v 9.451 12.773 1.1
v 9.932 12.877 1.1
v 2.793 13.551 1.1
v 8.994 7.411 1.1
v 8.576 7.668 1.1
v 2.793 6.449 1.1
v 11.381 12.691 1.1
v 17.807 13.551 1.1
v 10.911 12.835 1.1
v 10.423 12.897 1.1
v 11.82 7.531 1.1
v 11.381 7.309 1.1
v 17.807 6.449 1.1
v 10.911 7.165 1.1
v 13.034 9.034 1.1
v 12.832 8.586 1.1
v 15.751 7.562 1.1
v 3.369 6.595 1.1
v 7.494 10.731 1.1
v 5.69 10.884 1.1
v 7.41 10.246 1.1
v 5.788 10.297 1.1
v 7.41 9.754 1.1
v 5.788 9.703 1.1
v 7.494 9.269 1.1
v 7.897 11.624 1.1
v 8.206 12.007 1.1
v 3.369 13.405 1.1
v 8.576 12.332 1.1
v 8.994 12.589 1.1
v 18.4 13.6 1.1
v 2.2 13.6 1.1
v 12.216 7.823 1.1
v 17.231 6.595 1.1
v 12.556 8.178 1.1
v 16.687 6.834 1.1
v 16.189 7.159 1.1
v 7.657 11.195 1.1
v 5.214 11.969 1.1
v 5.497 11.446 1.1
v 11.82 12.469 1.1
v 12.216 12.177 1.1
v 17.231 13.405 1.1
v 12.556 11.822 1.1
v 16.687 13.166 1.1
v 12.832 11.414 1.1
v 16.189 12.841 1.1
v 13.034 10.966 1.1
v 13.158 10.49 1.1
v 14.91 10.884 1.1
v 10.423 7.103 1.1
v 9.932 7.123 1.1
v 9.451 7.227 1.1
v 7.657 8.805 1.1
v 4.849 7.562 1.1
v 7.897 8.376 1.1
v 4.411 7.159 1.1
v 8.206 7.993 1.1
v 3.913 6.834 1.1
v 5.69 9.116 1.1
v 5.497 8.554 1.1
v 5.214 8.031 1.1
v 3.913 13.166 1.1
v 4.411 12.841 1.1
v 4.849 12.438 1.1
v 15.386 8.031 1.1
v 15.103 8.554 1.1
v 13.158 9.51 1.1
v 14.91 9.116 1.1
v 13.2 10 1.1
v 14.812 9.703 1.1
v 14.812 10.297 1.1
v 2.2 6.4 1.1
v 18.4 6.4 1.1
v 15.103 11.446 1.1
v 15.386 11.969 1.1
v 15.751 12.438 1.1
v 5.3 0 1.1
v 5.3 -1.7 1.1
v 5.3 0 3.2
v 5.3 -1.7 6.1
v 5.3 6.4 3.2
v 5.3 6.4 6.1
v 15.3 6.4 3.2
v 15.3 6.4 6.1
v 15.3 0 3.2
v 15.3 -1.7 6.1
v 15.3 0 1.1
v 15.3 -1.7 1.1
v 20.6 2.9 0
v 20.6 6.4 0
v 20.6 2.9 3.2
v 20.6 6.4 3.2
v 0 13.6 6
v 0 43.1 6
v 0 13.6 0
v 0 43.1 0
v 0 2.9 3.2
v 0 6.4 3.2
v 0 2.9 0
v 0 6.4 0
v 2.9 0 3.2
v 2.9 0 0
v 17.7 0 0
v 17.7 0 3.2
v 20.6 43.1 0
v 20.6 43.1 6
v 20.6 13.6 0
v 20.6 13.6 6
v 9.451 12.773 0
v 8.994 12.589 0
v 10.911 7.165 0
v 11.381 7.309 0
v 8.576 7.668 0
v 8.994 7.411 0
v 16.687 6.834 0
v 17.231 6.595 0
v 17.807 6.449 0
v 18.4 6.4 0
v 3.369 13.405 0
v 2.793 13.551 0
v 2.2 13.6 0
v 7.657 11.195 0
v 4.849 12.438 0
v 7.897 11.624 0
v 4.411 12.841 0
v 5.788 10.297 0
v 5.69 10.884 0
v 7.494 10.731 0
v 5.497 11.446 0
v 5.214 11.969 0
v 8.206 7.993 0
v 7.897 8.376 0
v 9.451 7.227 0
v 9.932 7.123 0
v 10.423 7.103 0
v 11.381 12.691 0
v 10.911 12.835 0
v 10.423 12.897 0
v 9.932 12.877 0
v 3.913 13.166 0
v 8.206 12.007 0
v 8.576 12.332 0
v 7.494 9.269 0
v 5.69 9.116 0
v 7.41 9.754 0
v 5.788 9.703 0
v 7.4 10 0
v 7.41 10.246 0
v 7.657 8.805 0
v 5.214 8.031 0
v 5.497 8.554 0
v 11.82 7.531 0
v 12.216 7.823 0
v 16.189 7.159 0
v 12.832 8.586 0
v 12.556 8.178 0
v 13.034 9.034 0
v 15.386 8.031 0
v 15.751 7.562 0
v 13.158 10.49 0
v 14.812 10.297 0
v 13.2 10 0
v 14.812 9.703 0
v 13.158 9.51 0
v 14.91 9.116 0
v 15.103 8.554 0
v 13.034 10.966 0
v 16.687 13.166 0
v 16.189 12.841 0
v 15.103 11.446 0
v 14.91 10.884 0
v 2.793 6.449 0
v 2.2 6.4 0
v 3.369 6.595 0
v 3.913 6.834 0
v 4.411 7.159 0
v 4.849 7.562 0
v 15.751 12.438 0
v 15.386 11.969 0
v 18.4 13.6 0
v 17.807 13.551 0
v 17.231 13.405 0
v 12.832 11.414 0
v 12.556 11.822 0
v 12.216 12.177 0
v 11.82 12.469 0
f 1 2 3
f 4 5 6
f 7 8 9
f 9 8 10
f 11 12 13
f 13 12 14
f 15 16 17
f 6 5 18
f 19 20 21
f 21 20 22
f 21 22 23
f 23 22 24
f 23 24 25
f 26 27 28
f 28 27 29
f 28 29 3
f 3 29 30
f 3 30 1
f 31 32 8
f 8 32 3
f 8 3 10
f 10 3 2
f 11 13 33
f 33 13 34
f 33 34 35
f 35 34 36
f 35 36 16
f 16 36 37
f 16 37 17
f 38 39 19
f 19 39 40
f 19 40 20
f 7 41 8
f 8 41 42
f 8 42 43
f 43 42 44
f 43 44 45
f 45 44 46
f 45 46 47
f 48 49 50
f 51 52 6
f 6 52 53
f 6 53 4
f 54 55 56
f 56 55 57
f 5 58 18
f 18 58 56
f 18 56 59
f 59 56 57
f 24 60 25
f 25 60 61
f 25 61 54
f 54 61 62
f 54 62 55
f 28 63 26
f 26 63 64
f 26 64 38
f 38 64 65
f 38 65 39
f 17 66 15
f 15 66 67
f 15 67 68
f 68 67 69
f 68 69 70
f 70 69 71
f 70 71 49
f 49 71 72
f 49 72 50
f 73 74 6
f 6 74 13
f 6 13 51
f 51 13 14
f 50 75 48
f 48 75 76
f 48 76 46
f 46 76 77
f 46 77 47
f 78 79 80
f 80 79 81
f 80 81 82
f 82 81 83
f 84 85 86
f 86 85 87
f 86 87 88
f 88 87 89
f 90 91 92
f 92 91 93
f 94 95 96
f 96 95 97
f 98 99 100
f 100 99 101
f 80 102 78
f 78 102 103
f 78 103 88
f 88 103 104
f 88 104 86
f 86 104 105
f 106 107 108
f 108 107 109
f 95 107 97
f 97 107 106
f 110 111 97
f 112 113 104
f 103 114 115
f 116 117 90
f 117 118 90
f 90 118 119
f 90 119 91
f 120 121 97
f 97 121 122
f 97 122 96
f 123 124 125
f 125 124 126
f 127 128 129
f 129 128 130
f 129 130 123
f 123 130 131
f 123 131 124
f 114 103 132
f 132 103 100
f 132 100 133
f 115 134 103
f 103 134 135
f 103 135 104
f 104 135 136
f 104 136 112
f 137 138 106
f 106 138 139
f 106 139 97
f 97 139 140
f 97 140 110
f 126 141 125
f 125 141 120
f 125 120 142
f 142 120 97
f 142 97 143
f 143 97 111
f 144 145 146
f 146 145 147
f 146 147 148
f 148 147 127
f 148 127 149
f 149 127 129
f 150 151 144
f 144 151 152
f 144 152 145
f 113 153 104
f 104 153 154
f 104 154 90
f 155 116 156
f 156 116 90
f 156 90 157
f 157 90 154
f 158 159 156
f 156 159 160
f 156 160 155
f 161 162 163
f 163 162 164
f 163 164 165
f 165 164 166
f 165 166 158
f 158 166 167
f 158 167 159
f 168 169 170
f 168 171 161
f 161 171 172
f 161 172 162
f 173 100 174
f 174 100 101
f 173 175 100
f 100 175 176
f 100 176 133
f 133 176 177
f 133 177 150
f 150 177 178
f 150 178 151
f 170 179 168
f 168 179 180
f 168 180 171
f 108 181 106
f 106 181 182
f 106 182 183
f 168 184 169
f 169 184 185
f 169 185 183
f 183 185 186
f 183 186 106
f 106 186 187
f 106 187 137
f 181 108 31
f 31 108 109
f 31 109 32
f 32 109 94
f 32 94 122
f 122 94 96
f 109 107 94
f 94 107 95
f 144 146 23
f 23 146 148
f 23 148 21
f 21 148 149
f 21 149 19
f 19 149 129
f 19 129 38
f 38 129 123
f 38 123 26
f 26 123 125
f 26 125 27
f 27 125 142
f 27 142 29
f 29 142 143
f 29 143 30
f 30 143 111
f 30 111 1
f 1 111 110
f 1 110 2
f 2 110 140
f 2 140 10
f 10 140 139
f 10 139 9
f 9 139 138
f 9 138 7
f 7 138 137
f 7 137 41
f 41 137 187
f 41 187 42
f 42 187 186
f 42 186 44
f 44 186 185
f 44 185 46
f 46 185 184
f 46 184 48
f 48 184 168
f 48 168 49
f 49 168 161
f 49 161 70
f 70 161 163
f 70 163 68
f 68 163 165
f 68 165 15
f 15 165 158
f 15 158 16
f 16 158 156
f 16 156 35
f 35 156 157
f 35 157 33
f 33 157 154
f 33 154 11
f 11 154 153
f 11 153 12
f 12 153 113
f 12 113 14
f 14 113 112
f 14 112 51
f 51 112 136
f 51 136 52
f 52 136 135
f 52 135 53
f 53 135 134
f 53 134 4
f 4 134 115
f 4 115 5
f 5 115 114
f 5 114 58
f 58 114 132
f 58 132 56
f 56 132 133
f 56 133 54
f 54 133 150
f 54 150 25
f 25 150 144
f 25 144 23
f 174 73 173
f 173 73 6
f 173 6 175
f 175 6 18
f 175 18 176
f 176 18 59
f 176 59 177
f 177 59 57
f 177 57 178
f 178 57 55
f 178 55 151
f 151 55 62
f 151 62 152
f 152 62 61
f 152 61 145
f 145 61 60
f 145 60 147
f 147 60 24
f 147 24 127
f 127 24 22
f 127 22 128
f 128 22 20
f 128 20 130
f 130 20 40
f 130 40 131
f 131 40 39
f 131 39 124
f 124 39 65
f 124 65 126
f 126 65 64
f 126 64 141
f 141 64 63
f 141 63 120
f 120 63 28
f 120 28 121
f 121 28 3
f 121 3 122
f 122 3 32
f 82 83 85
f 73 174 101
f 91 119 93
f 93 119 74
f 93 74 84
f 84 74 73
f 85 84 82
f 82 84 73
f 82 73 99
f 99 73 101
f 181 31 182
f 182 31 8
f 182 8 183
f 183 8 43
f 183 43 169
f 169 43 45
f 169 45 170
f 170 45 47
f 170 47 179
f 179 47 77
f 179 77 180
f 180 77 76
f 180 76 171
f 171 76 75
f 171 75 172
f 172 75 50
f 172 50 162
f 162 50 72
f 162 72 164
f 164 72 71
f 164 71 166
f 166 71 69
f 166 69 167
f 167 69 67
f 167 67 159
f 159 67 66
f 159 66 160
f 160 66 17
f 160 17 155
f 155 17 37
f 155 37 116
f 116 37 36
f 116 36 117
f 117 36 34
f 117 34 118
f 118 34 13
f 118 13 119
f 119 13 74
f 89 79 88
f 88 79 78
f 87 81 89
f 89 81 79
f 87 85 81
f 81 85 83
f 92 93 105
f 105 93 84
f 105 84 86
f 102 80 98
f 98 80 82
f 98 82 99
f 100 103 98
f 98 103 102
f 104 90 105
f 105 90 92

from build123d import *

# Parameters (mm, degrees)
SKETCH1_W           = 20.6
SKETCH1_H           = 43.1
BOSS_EXTRUDE1_DEPTH = 1.1
SKETCH2_W           = 20.6
SKETCH2_H           = 29.5
BOSS_EXTRUDE2_DEPTH = 4.9
SKETCH3_R           = 2.9
CUT_EXTRUDE1_DEPTH  = 4.9
SKETCH4_W           = 10
SKETCH4_H           = 8.1
BOSS_EXTRUDE3_DEPTH = 5
SKETCH5_W           = 20.6
SKETCH5_H           = 6.4
BOSS_EXTRUDE4_DEPTH = 2.1
CUT_EXTRUDE2_DEPTH  = 48.877029983


with BuildPart() as part:
    # Sketch1 → Boss-Extrude1 (new body)
    with BuildSketch(Plane.XY):
        with Locations((10.3, 21.55)):
            Rectangle(SKETCH1_W, SKETCH1_H)
    extrude(amount=BOSS_EXTRUDE1_DEPTH)

    # Sketch2 → Boss-Extrude2 (add)
    with BuildSketch(Plane.XY.offset(1.1)):
        with Locations((10.3, 28.35)):
            Rectangle(SKETCH2_W, SKETCH2_H)
    extrude(amount=BOSS_EXTRUDE2_DEPTH)

    # Sketch3 → Cut-Extrude1 (cut)
    with BuildSketch(Plane.XY.offset(1.1)):
        with Locations((10.3, 10)):
            Circle(SKETCH3_R)
        with BuildLine():
            Line((0, 13.6), (2.2, 13.6))
            ThreePointArc((2.2, 13.6), (5.8, 10), (2.2, 6.4))
            Line((2.2, 6.4), (0, 6.4))
            Line((0, 6.4), (0, 13.6))
        make_face()
        with BuildLine():
            Line((20.6, 13.6), (18.4, 13.6))
            ThreePointArc((18.4, 13.6), (14.8, 10), (18.4, 6.4))
            Line((18.4, 6.4), (20.6, 6.4))
            Line((20.6, 6.4), (20.6, 13.6))
        make_face()
    extrude(amount=-CUT_EXTRUDE1_DEPTH, mode=Mode.SUBTRACT)

    # Sketch4 → Boss-Extrude3 (add)
    with BuildSketch(Plane.XY.offset(1.1)):
        with Locations((10.3, 2.35)):
            Rectangle(SKETCH4_W, SKETCH4_H)
    extrude(amount=BOSS_EXTRUDE3_DEPTH)

    # Sketch5 → Boss-Extrude4 (add)
    with BuildSketch(Plane.XY.offset(1.1)):
        with Locations((10.3, 3.2)):
            Rectangle(SKETCH5_W, SKETCH5_H)
    extrude(amount=BOSS_EXTRUDE4_DEPTH)

    # Sketch6 → Cut-Extrude2 (cut, through all)
    with BuildSketch(Plane.XY.offset(3.2)):
        Polygon((0, 0), (0, 2.9), (2.9, 0), align=None)
        Polygon((20.6, 0), (20.6, 2.9), (17.7, 0), align=None)
    extrude(amount=-CUT_EXTRUDE2_DEPTH, mode=Mode.SUBTRACT)


solid = part.part
